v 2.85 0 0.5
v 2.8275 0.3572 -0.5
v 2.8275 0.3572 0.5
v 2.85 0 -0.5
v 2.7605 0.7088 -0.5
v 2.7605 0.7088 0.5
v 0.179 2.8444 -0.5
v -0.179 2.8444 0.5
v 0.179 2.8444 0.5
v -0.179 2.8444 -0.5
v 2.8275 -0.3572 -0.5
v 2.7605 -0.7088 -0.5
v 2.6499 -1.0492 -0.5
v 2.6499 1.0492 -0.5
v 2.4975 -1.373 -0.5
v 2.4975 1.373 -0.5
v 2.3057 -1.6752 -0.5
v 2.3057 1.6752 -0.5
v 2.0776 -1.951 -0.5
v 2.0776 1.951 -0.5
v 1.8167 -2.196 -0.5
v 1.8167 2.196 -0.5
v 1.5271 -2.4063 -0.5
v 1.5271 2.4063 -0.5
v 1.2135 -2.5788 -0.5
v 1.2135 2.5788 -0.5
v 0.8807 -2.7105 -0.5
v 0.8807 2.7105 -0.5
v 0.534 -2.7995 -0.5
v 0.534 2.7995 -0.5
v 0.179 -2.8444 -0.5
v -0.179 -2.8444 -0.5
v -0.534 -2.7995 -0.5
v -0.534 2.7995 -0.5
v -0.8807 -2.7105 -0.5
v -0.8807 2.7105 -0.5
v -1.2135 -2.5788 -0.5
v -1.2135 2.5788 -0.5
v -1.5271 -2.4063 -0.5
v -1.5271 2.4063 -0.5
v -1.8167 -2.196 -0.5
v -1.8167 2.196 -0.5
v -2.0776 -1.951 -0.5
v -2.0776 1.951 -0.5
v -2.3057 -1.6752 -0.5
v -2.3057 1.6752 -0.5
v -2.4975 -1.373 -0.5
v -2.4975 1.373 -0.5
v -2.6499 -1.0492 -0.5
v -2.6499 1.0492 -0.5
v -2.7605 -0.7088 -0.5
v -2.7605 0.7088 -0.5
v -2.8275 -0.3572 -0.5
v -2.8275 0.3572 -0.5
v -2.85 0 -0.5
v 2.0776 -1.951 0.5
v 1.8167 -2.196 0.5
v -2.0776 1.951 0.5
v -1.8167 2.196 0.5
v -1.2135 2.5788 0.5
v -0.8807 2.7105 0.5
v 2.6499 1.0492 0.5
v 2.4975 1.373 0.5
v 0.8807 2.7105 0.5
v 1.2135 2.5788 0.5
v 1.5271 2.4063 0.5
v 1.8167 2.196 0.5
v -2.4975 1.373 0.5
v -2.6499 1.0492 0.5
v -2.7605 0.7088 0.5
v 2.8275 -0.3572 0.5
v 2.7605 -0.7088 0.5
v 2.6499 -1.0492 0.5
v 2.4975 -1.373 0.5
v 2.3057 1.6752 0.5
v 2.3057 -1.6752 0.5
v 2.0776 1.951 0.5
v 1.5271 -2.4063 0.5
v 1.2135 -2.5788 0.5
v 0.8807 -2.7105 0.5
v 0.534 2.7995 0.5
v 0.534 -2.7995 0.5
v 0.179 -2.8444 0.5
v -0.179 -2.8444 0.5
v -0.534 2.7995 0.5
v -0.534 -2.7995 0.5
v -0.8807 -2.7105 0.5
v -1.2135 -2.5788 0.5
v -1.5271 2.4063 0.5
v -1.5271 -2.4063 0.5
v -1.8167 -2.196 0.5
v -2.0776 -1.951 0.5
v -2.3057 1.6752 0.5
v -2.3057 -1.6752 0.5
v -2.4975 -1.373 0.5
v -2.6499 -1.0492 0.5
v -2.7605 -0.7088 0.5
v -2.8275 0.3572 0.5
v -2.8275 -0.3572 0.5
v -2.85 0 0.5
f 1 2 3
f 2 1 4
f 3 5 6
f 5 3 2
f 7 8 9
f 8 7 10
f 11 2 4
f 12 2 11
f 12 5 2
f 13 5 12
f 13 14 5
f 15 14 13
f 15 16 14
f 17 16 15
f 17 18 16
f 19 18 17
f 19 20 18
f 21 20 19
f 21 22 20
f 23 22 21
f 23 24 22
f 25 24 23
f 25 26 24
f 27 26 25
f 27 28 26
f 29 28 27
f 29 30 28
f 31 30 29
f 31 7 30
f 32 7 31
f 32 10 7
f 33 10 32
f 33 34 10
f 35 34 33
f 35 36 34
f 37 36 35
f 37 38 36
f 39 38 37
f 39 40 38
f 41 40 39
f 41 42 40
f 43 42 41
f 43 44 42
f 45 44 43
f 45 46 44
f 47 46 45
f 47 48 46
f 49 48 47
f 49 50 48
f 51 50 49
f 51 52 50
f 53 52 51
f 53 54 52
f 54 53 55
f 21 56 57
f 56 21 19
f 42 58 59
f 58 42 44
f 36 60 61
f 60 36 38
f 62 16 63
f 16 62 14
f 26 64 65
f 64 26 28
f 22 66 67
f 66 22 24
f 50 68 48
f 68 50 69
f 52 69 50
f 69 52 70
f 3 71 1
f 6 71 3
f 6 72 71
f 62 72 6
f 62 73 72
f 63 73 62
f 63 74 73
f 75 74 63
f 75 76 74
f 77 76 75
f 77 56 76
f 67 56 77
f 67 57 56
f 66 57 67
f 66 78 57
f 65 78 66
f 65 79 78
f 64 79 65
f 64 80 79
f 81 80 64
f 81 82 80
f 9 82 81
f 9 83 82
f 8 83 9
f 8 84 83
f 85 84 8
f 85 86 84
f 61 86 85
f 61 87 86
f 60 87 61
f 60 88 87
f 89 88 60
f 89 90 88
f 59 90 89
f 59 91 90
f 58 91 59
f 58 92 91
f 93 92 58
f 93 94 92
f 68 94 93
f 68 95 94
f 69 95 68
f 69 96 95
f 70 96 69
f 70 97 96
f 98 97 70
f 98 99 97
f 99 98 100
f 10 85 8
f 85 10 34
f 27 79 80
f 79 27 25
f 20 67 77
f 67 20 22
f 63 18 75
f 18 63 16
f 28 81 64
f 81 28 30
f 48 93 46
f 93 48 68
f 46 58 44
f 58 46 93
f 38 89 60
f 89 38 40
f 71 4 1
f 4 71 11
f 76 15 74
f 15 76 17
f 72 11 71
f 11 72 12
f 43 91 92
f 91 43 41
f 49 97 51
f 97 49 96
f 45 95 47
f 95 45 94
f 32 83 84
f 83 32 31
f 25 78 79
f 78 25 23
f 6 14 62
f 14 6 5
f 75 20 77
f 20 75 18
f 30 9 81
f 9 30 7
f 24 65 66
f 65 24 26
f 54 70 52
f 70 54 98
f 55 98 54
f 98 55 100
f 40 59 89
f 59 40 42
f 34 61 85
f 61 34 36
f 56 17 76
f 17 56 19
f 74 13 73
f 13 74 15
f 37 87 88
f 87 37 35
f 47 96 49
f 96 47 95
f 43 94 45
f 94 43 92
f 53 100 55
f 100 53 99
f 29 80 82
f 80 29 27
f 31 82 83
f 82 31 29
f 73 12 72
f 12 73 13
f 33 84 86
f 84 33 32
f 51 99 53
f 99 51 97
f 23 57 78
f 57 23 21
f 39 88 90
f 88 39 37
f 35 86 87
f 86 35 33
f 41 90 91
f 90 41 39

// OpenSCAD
$fn = 50;


difference() {
	union() {
		translate(v = [0, 0, -0.5000000000]) {
			cylinder(h = 1, r = 2.8500000000);
		}
	}
	union() {
		translate(v = [0, 0, -100.0000000000]) {
			cylinder(h = 200, r = 0);
		}
	}
}
